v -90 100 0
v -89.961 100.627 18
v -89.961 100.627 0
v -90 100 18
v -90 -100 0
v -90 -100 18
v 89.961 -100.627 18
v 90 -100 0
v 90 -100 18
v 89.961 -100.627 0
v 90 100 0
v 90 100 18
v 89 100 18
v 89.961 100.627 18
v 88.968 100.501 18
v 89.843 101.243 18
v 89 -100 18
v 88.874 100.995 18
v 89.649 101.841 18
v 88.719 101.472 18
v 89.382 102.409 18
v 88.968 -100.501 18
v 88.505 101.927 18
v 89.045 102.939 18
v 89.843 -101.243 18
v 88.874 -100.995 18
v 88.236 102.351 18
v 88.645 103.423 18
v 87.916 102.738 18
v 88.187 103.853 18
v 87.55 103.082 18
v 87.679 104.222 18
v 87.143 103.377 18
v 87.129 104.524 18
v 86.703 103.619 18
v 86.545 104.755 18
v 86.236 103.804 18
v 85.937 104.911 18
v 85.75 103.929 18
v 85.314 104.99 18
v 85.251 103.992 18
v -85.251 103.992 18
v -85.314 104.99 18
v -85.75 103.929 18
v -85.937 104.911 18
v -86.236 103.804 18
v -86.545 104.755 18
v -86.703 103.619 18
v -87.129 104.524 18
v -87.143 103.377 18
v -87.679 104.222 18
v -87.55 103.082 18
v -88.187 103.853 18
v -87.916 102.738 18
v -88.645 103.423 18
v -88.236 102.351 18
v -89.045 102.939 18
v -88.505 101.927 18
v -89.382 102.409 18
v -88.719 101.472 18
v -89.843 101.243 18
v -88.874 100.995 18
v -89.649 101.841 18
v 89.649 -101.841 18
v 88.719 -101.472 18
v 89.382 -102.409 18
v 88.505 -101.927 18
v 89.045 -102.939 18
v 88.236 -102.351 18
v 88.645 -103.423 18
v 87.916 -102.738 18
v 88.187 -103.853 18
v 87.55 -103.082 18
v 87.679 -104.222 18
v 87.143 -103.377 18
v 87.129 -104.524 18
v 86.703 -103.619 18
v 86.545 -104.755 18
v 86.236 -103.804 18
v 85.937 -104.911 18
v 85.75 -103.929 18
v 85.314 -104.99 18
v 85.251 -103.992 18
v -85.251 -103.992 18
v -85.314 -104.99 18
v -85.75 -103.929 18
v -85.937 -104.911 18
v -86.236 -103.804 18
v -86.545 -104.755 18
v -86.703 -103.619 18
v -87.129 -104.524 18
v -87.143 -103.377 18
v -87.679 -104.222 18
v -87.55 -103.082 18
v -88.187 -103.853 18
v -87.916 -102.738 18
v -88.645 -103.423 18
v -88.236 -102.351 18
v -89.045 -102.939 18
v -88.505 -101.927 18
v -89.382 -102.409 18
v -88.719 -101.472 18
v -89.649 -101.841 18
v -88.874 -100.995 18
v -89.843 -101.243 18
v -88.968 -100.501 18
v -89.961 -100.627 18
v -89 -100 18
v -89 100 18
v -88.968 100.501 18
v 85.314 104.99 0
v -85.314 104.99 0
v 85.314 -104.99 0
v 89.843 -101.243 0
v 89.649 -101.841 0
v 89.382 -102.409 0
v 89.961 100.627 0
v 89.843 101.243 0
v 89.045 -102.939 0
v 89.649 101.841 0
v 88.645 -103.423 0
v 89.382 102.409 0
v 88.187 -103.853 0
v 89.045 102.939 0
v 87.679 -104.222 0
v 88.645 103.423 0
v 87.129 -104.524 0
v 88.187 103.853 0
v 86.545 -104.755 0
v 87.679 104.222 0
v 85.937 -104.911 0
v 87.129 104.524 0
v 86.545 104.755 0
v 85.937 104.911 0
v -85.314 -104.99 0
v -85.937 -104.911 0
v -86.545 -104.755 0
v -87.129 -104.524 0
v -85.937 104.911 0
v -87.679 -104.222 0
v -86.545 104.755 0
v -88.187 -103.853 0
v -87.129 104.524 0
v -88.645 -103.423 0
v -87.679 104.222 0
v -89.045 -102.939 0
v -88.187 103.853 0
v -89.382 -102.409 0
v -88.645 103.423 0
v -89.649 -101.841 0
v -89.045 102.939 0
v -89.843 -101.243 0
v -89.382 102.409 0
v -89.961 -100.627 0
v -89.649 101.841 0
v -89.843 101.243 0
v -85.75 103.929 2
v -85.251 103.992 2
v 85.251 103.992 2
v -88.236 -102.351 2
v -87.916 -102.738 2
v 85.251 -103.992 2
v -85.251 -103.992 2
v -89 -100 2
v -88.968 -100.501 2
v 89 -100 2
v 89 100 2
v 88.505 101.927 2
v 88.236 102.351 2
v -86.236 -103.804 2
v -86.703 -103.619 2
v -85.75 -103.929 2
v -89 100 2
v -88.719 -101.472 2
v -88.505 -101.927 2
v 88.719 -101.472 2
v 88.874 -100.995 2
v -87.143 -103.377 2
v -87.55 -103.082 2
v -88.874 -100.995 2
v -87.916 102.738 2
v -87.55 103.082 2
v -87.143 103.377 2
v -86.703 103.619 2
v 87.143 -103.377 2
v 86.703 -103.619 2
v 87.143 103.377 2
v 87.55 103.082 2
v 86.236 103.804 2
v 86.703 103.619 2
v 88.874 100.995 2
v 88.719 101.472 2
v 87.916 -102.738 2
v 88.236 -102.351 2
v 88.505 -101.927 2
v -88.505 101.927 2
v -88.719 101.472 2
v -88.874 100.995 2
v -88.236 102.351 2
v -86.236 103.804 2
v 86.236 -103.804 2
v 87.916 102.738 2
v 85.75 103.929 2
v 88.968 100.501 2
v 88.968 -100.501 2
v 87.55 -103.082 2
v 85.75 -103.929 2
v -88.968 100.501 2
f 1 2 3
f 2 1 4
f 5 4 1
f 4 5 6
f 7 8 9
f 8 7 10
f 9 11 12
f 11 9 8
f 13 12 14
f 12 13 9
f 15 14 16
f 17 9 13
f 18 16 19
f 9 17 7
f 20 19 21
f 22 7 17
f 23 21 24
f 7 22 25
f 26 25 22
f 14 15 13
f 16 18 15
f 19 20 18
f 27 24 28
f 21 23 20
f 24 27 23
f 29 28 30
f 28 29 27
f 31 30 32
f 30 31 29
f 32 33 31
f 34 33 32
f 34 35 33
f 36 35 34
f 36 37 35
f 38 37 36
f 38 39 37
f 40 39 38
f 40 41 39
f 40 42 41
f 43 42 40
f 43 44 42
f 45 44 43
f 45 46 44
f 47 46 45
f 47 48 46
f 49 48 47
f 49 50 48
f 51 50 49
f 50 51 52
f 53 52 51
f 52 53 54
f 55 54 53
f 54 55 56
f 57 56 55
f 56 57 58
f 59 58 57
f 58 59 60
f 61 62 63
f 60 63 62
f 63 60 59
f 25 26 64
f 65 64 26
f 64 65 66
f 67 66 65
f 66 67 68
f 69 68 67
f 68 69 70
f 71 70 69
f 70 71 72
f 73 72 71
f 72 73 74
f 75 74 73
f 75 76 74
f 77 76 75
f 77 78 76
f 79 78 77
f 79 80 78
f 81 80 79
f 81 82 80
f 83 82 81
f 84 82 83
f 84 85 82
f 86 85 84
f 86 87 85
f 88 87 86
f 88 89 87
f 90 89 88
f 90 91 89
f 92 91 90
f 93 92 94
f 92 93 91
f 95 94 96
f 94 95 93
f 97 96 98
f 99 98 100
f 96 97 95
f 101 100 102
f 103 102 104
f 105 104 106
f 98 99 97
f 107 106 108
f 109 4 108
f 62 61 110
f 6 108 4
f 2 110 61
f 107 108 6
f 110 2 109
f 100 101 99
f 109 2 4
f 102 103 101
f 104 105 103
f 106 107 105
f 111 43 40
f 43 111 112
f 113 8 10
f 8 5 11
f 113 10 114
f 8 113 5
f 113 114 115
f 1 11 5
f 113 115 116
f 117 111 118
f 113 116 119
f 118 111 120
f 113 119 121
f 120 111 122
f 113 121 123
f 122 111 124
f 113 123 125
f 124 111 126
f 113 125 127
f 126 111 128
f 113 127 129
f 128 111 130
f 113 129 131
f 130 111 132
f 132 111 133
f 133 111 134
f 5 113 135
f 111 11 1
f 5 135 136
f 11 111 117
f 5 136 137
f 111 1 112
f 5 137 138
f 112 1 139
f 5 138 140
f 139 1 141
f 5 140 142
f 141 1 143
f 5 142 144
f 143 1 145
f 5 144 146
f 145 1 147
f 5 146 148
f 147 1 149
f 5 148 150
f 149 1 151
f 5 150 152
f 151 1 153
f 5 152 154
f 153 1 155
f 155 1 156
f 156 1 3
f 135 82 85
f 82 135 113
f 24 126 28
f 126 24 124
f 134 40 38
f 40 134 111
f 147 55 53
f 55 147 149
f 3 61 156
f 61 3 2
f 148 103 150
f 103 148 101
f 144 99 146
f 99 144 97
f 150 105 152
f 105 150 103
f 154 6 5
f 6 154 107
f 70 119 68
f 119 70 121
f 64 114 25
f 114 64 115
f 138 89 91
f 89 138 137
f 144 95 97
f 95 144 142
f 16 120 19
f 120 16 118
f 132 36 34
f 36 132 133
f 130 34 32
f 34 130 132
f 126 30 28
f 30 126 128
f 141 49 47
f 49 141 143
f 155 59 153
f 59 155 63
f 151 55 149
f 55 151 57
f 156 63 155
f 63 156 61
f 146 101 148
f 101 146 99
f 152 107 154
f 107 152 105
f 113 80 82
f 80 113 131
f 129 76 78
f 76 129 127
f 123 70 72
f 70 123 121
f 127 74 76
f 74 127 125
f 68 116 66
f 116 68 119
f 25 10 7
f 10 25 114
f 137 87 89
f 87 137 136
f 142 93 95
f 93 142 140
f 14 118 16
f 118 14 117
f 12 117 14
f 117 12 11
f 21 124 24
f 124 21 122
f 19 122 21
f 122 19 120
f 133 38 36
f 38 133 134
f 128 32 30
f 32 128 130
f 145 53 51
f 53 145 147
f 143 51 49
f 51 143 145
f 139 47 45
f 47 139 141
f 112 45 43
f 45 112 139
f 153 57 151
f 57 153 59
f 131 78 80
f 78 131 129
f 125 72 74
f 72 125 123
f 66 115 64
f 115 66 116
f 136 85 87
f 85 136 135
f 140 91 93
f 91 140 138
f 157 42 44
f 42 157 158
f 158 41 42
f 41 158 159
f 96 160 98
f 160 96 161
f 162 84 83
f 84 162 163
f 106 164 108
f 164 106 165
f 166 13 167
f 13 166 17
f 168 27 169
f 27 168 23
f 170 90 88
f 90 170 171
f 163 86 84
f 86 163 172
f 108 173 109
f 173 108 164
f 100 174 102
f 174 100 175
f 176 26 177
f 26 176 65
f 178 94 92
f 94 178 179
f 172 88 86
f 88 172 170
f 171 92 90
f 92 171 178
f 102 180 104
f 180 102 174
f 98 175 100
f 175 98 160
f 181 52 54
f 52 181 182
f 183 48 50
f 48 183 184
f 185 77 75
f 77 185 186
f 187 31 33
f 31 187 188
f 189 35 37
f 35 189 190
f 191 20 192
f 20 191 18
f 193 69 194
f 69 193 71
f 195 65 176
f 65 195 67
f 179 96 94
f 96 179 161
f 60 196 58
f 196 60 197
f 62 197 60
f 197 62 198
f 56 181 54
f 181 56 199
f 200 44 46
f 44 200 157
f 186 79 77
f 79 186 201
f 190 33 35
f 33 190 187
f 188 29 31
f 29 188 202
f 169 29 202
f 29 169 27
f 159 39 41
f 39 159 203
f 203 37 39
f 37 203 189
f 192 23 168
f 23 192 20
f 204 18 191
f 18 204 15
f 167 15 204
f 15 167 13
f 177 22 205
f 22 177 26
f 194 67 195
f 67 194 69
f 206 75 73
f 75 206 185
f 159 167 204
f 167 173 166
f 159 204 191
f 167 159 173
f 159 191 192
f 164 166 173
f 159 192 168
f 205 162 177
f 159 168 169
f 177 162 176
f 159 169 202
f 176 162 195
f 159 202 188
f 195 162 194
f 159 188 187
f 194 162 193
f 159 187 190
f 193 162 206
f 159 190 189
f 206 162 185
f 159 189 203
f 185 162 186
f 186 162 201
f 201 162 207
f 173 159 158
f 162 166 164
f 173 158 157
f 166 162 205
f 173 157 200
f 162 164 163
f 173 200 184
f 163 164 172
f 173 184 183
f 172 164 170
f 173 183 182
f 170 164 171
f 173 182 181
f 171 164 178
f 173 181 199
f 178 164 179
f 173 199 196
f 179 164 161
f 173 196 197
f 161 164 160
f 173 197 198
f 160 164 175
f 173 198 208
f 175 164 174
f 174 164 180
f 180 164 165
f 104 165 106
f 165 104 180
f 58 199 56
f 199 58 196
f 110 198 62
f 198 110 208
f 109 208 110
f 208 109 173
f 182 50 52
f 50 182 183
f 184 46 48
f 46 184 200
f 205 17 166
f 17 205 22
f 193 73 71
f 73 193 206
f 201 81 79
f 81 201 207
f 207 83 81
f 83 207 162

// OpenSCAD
$fn = 50;


difference() {
	union() {
		hull() {
			translate(v = [-85.0000000000, 100.0000000000, 0]) {
				cylinder(h = 18, r = 5);
			}
			translate(v = [85.0000000000, 100.0000000000, 0]) {
				cylinder(h = 18, r = 5);
			}
			translate(v = [-85.0000000000, -100.0000000000, 0]) {
				cylinder(h = 18, r = 5);
			}
			translate(v = [85.0000000000, -100.0000000000, 0]) {
				cylinder(h = 18, r = 5);
			}
		}
	}
	union() {
		translate(v = [0, 0, 2]) {
			hull() {
				translate(v = [-85.0000000000, 100.0000000000, 0]) {
					cylinder(h = 16, r = 4);
				}
				translate(v = [85.0000000000, 100.0000000000, 0]) {
					cylinder(h = 16, r = 4);
				}
				translate(v = [-85.0000000000, -100.0000000000, 0]) {
					cylinder(h = 16, r = 4);
				}
				translate(v = [85.0000000000, -100.0000000000, 0]) {
					cylinder(h = 16, r = 4);
				}
			}
		}
	}
}
